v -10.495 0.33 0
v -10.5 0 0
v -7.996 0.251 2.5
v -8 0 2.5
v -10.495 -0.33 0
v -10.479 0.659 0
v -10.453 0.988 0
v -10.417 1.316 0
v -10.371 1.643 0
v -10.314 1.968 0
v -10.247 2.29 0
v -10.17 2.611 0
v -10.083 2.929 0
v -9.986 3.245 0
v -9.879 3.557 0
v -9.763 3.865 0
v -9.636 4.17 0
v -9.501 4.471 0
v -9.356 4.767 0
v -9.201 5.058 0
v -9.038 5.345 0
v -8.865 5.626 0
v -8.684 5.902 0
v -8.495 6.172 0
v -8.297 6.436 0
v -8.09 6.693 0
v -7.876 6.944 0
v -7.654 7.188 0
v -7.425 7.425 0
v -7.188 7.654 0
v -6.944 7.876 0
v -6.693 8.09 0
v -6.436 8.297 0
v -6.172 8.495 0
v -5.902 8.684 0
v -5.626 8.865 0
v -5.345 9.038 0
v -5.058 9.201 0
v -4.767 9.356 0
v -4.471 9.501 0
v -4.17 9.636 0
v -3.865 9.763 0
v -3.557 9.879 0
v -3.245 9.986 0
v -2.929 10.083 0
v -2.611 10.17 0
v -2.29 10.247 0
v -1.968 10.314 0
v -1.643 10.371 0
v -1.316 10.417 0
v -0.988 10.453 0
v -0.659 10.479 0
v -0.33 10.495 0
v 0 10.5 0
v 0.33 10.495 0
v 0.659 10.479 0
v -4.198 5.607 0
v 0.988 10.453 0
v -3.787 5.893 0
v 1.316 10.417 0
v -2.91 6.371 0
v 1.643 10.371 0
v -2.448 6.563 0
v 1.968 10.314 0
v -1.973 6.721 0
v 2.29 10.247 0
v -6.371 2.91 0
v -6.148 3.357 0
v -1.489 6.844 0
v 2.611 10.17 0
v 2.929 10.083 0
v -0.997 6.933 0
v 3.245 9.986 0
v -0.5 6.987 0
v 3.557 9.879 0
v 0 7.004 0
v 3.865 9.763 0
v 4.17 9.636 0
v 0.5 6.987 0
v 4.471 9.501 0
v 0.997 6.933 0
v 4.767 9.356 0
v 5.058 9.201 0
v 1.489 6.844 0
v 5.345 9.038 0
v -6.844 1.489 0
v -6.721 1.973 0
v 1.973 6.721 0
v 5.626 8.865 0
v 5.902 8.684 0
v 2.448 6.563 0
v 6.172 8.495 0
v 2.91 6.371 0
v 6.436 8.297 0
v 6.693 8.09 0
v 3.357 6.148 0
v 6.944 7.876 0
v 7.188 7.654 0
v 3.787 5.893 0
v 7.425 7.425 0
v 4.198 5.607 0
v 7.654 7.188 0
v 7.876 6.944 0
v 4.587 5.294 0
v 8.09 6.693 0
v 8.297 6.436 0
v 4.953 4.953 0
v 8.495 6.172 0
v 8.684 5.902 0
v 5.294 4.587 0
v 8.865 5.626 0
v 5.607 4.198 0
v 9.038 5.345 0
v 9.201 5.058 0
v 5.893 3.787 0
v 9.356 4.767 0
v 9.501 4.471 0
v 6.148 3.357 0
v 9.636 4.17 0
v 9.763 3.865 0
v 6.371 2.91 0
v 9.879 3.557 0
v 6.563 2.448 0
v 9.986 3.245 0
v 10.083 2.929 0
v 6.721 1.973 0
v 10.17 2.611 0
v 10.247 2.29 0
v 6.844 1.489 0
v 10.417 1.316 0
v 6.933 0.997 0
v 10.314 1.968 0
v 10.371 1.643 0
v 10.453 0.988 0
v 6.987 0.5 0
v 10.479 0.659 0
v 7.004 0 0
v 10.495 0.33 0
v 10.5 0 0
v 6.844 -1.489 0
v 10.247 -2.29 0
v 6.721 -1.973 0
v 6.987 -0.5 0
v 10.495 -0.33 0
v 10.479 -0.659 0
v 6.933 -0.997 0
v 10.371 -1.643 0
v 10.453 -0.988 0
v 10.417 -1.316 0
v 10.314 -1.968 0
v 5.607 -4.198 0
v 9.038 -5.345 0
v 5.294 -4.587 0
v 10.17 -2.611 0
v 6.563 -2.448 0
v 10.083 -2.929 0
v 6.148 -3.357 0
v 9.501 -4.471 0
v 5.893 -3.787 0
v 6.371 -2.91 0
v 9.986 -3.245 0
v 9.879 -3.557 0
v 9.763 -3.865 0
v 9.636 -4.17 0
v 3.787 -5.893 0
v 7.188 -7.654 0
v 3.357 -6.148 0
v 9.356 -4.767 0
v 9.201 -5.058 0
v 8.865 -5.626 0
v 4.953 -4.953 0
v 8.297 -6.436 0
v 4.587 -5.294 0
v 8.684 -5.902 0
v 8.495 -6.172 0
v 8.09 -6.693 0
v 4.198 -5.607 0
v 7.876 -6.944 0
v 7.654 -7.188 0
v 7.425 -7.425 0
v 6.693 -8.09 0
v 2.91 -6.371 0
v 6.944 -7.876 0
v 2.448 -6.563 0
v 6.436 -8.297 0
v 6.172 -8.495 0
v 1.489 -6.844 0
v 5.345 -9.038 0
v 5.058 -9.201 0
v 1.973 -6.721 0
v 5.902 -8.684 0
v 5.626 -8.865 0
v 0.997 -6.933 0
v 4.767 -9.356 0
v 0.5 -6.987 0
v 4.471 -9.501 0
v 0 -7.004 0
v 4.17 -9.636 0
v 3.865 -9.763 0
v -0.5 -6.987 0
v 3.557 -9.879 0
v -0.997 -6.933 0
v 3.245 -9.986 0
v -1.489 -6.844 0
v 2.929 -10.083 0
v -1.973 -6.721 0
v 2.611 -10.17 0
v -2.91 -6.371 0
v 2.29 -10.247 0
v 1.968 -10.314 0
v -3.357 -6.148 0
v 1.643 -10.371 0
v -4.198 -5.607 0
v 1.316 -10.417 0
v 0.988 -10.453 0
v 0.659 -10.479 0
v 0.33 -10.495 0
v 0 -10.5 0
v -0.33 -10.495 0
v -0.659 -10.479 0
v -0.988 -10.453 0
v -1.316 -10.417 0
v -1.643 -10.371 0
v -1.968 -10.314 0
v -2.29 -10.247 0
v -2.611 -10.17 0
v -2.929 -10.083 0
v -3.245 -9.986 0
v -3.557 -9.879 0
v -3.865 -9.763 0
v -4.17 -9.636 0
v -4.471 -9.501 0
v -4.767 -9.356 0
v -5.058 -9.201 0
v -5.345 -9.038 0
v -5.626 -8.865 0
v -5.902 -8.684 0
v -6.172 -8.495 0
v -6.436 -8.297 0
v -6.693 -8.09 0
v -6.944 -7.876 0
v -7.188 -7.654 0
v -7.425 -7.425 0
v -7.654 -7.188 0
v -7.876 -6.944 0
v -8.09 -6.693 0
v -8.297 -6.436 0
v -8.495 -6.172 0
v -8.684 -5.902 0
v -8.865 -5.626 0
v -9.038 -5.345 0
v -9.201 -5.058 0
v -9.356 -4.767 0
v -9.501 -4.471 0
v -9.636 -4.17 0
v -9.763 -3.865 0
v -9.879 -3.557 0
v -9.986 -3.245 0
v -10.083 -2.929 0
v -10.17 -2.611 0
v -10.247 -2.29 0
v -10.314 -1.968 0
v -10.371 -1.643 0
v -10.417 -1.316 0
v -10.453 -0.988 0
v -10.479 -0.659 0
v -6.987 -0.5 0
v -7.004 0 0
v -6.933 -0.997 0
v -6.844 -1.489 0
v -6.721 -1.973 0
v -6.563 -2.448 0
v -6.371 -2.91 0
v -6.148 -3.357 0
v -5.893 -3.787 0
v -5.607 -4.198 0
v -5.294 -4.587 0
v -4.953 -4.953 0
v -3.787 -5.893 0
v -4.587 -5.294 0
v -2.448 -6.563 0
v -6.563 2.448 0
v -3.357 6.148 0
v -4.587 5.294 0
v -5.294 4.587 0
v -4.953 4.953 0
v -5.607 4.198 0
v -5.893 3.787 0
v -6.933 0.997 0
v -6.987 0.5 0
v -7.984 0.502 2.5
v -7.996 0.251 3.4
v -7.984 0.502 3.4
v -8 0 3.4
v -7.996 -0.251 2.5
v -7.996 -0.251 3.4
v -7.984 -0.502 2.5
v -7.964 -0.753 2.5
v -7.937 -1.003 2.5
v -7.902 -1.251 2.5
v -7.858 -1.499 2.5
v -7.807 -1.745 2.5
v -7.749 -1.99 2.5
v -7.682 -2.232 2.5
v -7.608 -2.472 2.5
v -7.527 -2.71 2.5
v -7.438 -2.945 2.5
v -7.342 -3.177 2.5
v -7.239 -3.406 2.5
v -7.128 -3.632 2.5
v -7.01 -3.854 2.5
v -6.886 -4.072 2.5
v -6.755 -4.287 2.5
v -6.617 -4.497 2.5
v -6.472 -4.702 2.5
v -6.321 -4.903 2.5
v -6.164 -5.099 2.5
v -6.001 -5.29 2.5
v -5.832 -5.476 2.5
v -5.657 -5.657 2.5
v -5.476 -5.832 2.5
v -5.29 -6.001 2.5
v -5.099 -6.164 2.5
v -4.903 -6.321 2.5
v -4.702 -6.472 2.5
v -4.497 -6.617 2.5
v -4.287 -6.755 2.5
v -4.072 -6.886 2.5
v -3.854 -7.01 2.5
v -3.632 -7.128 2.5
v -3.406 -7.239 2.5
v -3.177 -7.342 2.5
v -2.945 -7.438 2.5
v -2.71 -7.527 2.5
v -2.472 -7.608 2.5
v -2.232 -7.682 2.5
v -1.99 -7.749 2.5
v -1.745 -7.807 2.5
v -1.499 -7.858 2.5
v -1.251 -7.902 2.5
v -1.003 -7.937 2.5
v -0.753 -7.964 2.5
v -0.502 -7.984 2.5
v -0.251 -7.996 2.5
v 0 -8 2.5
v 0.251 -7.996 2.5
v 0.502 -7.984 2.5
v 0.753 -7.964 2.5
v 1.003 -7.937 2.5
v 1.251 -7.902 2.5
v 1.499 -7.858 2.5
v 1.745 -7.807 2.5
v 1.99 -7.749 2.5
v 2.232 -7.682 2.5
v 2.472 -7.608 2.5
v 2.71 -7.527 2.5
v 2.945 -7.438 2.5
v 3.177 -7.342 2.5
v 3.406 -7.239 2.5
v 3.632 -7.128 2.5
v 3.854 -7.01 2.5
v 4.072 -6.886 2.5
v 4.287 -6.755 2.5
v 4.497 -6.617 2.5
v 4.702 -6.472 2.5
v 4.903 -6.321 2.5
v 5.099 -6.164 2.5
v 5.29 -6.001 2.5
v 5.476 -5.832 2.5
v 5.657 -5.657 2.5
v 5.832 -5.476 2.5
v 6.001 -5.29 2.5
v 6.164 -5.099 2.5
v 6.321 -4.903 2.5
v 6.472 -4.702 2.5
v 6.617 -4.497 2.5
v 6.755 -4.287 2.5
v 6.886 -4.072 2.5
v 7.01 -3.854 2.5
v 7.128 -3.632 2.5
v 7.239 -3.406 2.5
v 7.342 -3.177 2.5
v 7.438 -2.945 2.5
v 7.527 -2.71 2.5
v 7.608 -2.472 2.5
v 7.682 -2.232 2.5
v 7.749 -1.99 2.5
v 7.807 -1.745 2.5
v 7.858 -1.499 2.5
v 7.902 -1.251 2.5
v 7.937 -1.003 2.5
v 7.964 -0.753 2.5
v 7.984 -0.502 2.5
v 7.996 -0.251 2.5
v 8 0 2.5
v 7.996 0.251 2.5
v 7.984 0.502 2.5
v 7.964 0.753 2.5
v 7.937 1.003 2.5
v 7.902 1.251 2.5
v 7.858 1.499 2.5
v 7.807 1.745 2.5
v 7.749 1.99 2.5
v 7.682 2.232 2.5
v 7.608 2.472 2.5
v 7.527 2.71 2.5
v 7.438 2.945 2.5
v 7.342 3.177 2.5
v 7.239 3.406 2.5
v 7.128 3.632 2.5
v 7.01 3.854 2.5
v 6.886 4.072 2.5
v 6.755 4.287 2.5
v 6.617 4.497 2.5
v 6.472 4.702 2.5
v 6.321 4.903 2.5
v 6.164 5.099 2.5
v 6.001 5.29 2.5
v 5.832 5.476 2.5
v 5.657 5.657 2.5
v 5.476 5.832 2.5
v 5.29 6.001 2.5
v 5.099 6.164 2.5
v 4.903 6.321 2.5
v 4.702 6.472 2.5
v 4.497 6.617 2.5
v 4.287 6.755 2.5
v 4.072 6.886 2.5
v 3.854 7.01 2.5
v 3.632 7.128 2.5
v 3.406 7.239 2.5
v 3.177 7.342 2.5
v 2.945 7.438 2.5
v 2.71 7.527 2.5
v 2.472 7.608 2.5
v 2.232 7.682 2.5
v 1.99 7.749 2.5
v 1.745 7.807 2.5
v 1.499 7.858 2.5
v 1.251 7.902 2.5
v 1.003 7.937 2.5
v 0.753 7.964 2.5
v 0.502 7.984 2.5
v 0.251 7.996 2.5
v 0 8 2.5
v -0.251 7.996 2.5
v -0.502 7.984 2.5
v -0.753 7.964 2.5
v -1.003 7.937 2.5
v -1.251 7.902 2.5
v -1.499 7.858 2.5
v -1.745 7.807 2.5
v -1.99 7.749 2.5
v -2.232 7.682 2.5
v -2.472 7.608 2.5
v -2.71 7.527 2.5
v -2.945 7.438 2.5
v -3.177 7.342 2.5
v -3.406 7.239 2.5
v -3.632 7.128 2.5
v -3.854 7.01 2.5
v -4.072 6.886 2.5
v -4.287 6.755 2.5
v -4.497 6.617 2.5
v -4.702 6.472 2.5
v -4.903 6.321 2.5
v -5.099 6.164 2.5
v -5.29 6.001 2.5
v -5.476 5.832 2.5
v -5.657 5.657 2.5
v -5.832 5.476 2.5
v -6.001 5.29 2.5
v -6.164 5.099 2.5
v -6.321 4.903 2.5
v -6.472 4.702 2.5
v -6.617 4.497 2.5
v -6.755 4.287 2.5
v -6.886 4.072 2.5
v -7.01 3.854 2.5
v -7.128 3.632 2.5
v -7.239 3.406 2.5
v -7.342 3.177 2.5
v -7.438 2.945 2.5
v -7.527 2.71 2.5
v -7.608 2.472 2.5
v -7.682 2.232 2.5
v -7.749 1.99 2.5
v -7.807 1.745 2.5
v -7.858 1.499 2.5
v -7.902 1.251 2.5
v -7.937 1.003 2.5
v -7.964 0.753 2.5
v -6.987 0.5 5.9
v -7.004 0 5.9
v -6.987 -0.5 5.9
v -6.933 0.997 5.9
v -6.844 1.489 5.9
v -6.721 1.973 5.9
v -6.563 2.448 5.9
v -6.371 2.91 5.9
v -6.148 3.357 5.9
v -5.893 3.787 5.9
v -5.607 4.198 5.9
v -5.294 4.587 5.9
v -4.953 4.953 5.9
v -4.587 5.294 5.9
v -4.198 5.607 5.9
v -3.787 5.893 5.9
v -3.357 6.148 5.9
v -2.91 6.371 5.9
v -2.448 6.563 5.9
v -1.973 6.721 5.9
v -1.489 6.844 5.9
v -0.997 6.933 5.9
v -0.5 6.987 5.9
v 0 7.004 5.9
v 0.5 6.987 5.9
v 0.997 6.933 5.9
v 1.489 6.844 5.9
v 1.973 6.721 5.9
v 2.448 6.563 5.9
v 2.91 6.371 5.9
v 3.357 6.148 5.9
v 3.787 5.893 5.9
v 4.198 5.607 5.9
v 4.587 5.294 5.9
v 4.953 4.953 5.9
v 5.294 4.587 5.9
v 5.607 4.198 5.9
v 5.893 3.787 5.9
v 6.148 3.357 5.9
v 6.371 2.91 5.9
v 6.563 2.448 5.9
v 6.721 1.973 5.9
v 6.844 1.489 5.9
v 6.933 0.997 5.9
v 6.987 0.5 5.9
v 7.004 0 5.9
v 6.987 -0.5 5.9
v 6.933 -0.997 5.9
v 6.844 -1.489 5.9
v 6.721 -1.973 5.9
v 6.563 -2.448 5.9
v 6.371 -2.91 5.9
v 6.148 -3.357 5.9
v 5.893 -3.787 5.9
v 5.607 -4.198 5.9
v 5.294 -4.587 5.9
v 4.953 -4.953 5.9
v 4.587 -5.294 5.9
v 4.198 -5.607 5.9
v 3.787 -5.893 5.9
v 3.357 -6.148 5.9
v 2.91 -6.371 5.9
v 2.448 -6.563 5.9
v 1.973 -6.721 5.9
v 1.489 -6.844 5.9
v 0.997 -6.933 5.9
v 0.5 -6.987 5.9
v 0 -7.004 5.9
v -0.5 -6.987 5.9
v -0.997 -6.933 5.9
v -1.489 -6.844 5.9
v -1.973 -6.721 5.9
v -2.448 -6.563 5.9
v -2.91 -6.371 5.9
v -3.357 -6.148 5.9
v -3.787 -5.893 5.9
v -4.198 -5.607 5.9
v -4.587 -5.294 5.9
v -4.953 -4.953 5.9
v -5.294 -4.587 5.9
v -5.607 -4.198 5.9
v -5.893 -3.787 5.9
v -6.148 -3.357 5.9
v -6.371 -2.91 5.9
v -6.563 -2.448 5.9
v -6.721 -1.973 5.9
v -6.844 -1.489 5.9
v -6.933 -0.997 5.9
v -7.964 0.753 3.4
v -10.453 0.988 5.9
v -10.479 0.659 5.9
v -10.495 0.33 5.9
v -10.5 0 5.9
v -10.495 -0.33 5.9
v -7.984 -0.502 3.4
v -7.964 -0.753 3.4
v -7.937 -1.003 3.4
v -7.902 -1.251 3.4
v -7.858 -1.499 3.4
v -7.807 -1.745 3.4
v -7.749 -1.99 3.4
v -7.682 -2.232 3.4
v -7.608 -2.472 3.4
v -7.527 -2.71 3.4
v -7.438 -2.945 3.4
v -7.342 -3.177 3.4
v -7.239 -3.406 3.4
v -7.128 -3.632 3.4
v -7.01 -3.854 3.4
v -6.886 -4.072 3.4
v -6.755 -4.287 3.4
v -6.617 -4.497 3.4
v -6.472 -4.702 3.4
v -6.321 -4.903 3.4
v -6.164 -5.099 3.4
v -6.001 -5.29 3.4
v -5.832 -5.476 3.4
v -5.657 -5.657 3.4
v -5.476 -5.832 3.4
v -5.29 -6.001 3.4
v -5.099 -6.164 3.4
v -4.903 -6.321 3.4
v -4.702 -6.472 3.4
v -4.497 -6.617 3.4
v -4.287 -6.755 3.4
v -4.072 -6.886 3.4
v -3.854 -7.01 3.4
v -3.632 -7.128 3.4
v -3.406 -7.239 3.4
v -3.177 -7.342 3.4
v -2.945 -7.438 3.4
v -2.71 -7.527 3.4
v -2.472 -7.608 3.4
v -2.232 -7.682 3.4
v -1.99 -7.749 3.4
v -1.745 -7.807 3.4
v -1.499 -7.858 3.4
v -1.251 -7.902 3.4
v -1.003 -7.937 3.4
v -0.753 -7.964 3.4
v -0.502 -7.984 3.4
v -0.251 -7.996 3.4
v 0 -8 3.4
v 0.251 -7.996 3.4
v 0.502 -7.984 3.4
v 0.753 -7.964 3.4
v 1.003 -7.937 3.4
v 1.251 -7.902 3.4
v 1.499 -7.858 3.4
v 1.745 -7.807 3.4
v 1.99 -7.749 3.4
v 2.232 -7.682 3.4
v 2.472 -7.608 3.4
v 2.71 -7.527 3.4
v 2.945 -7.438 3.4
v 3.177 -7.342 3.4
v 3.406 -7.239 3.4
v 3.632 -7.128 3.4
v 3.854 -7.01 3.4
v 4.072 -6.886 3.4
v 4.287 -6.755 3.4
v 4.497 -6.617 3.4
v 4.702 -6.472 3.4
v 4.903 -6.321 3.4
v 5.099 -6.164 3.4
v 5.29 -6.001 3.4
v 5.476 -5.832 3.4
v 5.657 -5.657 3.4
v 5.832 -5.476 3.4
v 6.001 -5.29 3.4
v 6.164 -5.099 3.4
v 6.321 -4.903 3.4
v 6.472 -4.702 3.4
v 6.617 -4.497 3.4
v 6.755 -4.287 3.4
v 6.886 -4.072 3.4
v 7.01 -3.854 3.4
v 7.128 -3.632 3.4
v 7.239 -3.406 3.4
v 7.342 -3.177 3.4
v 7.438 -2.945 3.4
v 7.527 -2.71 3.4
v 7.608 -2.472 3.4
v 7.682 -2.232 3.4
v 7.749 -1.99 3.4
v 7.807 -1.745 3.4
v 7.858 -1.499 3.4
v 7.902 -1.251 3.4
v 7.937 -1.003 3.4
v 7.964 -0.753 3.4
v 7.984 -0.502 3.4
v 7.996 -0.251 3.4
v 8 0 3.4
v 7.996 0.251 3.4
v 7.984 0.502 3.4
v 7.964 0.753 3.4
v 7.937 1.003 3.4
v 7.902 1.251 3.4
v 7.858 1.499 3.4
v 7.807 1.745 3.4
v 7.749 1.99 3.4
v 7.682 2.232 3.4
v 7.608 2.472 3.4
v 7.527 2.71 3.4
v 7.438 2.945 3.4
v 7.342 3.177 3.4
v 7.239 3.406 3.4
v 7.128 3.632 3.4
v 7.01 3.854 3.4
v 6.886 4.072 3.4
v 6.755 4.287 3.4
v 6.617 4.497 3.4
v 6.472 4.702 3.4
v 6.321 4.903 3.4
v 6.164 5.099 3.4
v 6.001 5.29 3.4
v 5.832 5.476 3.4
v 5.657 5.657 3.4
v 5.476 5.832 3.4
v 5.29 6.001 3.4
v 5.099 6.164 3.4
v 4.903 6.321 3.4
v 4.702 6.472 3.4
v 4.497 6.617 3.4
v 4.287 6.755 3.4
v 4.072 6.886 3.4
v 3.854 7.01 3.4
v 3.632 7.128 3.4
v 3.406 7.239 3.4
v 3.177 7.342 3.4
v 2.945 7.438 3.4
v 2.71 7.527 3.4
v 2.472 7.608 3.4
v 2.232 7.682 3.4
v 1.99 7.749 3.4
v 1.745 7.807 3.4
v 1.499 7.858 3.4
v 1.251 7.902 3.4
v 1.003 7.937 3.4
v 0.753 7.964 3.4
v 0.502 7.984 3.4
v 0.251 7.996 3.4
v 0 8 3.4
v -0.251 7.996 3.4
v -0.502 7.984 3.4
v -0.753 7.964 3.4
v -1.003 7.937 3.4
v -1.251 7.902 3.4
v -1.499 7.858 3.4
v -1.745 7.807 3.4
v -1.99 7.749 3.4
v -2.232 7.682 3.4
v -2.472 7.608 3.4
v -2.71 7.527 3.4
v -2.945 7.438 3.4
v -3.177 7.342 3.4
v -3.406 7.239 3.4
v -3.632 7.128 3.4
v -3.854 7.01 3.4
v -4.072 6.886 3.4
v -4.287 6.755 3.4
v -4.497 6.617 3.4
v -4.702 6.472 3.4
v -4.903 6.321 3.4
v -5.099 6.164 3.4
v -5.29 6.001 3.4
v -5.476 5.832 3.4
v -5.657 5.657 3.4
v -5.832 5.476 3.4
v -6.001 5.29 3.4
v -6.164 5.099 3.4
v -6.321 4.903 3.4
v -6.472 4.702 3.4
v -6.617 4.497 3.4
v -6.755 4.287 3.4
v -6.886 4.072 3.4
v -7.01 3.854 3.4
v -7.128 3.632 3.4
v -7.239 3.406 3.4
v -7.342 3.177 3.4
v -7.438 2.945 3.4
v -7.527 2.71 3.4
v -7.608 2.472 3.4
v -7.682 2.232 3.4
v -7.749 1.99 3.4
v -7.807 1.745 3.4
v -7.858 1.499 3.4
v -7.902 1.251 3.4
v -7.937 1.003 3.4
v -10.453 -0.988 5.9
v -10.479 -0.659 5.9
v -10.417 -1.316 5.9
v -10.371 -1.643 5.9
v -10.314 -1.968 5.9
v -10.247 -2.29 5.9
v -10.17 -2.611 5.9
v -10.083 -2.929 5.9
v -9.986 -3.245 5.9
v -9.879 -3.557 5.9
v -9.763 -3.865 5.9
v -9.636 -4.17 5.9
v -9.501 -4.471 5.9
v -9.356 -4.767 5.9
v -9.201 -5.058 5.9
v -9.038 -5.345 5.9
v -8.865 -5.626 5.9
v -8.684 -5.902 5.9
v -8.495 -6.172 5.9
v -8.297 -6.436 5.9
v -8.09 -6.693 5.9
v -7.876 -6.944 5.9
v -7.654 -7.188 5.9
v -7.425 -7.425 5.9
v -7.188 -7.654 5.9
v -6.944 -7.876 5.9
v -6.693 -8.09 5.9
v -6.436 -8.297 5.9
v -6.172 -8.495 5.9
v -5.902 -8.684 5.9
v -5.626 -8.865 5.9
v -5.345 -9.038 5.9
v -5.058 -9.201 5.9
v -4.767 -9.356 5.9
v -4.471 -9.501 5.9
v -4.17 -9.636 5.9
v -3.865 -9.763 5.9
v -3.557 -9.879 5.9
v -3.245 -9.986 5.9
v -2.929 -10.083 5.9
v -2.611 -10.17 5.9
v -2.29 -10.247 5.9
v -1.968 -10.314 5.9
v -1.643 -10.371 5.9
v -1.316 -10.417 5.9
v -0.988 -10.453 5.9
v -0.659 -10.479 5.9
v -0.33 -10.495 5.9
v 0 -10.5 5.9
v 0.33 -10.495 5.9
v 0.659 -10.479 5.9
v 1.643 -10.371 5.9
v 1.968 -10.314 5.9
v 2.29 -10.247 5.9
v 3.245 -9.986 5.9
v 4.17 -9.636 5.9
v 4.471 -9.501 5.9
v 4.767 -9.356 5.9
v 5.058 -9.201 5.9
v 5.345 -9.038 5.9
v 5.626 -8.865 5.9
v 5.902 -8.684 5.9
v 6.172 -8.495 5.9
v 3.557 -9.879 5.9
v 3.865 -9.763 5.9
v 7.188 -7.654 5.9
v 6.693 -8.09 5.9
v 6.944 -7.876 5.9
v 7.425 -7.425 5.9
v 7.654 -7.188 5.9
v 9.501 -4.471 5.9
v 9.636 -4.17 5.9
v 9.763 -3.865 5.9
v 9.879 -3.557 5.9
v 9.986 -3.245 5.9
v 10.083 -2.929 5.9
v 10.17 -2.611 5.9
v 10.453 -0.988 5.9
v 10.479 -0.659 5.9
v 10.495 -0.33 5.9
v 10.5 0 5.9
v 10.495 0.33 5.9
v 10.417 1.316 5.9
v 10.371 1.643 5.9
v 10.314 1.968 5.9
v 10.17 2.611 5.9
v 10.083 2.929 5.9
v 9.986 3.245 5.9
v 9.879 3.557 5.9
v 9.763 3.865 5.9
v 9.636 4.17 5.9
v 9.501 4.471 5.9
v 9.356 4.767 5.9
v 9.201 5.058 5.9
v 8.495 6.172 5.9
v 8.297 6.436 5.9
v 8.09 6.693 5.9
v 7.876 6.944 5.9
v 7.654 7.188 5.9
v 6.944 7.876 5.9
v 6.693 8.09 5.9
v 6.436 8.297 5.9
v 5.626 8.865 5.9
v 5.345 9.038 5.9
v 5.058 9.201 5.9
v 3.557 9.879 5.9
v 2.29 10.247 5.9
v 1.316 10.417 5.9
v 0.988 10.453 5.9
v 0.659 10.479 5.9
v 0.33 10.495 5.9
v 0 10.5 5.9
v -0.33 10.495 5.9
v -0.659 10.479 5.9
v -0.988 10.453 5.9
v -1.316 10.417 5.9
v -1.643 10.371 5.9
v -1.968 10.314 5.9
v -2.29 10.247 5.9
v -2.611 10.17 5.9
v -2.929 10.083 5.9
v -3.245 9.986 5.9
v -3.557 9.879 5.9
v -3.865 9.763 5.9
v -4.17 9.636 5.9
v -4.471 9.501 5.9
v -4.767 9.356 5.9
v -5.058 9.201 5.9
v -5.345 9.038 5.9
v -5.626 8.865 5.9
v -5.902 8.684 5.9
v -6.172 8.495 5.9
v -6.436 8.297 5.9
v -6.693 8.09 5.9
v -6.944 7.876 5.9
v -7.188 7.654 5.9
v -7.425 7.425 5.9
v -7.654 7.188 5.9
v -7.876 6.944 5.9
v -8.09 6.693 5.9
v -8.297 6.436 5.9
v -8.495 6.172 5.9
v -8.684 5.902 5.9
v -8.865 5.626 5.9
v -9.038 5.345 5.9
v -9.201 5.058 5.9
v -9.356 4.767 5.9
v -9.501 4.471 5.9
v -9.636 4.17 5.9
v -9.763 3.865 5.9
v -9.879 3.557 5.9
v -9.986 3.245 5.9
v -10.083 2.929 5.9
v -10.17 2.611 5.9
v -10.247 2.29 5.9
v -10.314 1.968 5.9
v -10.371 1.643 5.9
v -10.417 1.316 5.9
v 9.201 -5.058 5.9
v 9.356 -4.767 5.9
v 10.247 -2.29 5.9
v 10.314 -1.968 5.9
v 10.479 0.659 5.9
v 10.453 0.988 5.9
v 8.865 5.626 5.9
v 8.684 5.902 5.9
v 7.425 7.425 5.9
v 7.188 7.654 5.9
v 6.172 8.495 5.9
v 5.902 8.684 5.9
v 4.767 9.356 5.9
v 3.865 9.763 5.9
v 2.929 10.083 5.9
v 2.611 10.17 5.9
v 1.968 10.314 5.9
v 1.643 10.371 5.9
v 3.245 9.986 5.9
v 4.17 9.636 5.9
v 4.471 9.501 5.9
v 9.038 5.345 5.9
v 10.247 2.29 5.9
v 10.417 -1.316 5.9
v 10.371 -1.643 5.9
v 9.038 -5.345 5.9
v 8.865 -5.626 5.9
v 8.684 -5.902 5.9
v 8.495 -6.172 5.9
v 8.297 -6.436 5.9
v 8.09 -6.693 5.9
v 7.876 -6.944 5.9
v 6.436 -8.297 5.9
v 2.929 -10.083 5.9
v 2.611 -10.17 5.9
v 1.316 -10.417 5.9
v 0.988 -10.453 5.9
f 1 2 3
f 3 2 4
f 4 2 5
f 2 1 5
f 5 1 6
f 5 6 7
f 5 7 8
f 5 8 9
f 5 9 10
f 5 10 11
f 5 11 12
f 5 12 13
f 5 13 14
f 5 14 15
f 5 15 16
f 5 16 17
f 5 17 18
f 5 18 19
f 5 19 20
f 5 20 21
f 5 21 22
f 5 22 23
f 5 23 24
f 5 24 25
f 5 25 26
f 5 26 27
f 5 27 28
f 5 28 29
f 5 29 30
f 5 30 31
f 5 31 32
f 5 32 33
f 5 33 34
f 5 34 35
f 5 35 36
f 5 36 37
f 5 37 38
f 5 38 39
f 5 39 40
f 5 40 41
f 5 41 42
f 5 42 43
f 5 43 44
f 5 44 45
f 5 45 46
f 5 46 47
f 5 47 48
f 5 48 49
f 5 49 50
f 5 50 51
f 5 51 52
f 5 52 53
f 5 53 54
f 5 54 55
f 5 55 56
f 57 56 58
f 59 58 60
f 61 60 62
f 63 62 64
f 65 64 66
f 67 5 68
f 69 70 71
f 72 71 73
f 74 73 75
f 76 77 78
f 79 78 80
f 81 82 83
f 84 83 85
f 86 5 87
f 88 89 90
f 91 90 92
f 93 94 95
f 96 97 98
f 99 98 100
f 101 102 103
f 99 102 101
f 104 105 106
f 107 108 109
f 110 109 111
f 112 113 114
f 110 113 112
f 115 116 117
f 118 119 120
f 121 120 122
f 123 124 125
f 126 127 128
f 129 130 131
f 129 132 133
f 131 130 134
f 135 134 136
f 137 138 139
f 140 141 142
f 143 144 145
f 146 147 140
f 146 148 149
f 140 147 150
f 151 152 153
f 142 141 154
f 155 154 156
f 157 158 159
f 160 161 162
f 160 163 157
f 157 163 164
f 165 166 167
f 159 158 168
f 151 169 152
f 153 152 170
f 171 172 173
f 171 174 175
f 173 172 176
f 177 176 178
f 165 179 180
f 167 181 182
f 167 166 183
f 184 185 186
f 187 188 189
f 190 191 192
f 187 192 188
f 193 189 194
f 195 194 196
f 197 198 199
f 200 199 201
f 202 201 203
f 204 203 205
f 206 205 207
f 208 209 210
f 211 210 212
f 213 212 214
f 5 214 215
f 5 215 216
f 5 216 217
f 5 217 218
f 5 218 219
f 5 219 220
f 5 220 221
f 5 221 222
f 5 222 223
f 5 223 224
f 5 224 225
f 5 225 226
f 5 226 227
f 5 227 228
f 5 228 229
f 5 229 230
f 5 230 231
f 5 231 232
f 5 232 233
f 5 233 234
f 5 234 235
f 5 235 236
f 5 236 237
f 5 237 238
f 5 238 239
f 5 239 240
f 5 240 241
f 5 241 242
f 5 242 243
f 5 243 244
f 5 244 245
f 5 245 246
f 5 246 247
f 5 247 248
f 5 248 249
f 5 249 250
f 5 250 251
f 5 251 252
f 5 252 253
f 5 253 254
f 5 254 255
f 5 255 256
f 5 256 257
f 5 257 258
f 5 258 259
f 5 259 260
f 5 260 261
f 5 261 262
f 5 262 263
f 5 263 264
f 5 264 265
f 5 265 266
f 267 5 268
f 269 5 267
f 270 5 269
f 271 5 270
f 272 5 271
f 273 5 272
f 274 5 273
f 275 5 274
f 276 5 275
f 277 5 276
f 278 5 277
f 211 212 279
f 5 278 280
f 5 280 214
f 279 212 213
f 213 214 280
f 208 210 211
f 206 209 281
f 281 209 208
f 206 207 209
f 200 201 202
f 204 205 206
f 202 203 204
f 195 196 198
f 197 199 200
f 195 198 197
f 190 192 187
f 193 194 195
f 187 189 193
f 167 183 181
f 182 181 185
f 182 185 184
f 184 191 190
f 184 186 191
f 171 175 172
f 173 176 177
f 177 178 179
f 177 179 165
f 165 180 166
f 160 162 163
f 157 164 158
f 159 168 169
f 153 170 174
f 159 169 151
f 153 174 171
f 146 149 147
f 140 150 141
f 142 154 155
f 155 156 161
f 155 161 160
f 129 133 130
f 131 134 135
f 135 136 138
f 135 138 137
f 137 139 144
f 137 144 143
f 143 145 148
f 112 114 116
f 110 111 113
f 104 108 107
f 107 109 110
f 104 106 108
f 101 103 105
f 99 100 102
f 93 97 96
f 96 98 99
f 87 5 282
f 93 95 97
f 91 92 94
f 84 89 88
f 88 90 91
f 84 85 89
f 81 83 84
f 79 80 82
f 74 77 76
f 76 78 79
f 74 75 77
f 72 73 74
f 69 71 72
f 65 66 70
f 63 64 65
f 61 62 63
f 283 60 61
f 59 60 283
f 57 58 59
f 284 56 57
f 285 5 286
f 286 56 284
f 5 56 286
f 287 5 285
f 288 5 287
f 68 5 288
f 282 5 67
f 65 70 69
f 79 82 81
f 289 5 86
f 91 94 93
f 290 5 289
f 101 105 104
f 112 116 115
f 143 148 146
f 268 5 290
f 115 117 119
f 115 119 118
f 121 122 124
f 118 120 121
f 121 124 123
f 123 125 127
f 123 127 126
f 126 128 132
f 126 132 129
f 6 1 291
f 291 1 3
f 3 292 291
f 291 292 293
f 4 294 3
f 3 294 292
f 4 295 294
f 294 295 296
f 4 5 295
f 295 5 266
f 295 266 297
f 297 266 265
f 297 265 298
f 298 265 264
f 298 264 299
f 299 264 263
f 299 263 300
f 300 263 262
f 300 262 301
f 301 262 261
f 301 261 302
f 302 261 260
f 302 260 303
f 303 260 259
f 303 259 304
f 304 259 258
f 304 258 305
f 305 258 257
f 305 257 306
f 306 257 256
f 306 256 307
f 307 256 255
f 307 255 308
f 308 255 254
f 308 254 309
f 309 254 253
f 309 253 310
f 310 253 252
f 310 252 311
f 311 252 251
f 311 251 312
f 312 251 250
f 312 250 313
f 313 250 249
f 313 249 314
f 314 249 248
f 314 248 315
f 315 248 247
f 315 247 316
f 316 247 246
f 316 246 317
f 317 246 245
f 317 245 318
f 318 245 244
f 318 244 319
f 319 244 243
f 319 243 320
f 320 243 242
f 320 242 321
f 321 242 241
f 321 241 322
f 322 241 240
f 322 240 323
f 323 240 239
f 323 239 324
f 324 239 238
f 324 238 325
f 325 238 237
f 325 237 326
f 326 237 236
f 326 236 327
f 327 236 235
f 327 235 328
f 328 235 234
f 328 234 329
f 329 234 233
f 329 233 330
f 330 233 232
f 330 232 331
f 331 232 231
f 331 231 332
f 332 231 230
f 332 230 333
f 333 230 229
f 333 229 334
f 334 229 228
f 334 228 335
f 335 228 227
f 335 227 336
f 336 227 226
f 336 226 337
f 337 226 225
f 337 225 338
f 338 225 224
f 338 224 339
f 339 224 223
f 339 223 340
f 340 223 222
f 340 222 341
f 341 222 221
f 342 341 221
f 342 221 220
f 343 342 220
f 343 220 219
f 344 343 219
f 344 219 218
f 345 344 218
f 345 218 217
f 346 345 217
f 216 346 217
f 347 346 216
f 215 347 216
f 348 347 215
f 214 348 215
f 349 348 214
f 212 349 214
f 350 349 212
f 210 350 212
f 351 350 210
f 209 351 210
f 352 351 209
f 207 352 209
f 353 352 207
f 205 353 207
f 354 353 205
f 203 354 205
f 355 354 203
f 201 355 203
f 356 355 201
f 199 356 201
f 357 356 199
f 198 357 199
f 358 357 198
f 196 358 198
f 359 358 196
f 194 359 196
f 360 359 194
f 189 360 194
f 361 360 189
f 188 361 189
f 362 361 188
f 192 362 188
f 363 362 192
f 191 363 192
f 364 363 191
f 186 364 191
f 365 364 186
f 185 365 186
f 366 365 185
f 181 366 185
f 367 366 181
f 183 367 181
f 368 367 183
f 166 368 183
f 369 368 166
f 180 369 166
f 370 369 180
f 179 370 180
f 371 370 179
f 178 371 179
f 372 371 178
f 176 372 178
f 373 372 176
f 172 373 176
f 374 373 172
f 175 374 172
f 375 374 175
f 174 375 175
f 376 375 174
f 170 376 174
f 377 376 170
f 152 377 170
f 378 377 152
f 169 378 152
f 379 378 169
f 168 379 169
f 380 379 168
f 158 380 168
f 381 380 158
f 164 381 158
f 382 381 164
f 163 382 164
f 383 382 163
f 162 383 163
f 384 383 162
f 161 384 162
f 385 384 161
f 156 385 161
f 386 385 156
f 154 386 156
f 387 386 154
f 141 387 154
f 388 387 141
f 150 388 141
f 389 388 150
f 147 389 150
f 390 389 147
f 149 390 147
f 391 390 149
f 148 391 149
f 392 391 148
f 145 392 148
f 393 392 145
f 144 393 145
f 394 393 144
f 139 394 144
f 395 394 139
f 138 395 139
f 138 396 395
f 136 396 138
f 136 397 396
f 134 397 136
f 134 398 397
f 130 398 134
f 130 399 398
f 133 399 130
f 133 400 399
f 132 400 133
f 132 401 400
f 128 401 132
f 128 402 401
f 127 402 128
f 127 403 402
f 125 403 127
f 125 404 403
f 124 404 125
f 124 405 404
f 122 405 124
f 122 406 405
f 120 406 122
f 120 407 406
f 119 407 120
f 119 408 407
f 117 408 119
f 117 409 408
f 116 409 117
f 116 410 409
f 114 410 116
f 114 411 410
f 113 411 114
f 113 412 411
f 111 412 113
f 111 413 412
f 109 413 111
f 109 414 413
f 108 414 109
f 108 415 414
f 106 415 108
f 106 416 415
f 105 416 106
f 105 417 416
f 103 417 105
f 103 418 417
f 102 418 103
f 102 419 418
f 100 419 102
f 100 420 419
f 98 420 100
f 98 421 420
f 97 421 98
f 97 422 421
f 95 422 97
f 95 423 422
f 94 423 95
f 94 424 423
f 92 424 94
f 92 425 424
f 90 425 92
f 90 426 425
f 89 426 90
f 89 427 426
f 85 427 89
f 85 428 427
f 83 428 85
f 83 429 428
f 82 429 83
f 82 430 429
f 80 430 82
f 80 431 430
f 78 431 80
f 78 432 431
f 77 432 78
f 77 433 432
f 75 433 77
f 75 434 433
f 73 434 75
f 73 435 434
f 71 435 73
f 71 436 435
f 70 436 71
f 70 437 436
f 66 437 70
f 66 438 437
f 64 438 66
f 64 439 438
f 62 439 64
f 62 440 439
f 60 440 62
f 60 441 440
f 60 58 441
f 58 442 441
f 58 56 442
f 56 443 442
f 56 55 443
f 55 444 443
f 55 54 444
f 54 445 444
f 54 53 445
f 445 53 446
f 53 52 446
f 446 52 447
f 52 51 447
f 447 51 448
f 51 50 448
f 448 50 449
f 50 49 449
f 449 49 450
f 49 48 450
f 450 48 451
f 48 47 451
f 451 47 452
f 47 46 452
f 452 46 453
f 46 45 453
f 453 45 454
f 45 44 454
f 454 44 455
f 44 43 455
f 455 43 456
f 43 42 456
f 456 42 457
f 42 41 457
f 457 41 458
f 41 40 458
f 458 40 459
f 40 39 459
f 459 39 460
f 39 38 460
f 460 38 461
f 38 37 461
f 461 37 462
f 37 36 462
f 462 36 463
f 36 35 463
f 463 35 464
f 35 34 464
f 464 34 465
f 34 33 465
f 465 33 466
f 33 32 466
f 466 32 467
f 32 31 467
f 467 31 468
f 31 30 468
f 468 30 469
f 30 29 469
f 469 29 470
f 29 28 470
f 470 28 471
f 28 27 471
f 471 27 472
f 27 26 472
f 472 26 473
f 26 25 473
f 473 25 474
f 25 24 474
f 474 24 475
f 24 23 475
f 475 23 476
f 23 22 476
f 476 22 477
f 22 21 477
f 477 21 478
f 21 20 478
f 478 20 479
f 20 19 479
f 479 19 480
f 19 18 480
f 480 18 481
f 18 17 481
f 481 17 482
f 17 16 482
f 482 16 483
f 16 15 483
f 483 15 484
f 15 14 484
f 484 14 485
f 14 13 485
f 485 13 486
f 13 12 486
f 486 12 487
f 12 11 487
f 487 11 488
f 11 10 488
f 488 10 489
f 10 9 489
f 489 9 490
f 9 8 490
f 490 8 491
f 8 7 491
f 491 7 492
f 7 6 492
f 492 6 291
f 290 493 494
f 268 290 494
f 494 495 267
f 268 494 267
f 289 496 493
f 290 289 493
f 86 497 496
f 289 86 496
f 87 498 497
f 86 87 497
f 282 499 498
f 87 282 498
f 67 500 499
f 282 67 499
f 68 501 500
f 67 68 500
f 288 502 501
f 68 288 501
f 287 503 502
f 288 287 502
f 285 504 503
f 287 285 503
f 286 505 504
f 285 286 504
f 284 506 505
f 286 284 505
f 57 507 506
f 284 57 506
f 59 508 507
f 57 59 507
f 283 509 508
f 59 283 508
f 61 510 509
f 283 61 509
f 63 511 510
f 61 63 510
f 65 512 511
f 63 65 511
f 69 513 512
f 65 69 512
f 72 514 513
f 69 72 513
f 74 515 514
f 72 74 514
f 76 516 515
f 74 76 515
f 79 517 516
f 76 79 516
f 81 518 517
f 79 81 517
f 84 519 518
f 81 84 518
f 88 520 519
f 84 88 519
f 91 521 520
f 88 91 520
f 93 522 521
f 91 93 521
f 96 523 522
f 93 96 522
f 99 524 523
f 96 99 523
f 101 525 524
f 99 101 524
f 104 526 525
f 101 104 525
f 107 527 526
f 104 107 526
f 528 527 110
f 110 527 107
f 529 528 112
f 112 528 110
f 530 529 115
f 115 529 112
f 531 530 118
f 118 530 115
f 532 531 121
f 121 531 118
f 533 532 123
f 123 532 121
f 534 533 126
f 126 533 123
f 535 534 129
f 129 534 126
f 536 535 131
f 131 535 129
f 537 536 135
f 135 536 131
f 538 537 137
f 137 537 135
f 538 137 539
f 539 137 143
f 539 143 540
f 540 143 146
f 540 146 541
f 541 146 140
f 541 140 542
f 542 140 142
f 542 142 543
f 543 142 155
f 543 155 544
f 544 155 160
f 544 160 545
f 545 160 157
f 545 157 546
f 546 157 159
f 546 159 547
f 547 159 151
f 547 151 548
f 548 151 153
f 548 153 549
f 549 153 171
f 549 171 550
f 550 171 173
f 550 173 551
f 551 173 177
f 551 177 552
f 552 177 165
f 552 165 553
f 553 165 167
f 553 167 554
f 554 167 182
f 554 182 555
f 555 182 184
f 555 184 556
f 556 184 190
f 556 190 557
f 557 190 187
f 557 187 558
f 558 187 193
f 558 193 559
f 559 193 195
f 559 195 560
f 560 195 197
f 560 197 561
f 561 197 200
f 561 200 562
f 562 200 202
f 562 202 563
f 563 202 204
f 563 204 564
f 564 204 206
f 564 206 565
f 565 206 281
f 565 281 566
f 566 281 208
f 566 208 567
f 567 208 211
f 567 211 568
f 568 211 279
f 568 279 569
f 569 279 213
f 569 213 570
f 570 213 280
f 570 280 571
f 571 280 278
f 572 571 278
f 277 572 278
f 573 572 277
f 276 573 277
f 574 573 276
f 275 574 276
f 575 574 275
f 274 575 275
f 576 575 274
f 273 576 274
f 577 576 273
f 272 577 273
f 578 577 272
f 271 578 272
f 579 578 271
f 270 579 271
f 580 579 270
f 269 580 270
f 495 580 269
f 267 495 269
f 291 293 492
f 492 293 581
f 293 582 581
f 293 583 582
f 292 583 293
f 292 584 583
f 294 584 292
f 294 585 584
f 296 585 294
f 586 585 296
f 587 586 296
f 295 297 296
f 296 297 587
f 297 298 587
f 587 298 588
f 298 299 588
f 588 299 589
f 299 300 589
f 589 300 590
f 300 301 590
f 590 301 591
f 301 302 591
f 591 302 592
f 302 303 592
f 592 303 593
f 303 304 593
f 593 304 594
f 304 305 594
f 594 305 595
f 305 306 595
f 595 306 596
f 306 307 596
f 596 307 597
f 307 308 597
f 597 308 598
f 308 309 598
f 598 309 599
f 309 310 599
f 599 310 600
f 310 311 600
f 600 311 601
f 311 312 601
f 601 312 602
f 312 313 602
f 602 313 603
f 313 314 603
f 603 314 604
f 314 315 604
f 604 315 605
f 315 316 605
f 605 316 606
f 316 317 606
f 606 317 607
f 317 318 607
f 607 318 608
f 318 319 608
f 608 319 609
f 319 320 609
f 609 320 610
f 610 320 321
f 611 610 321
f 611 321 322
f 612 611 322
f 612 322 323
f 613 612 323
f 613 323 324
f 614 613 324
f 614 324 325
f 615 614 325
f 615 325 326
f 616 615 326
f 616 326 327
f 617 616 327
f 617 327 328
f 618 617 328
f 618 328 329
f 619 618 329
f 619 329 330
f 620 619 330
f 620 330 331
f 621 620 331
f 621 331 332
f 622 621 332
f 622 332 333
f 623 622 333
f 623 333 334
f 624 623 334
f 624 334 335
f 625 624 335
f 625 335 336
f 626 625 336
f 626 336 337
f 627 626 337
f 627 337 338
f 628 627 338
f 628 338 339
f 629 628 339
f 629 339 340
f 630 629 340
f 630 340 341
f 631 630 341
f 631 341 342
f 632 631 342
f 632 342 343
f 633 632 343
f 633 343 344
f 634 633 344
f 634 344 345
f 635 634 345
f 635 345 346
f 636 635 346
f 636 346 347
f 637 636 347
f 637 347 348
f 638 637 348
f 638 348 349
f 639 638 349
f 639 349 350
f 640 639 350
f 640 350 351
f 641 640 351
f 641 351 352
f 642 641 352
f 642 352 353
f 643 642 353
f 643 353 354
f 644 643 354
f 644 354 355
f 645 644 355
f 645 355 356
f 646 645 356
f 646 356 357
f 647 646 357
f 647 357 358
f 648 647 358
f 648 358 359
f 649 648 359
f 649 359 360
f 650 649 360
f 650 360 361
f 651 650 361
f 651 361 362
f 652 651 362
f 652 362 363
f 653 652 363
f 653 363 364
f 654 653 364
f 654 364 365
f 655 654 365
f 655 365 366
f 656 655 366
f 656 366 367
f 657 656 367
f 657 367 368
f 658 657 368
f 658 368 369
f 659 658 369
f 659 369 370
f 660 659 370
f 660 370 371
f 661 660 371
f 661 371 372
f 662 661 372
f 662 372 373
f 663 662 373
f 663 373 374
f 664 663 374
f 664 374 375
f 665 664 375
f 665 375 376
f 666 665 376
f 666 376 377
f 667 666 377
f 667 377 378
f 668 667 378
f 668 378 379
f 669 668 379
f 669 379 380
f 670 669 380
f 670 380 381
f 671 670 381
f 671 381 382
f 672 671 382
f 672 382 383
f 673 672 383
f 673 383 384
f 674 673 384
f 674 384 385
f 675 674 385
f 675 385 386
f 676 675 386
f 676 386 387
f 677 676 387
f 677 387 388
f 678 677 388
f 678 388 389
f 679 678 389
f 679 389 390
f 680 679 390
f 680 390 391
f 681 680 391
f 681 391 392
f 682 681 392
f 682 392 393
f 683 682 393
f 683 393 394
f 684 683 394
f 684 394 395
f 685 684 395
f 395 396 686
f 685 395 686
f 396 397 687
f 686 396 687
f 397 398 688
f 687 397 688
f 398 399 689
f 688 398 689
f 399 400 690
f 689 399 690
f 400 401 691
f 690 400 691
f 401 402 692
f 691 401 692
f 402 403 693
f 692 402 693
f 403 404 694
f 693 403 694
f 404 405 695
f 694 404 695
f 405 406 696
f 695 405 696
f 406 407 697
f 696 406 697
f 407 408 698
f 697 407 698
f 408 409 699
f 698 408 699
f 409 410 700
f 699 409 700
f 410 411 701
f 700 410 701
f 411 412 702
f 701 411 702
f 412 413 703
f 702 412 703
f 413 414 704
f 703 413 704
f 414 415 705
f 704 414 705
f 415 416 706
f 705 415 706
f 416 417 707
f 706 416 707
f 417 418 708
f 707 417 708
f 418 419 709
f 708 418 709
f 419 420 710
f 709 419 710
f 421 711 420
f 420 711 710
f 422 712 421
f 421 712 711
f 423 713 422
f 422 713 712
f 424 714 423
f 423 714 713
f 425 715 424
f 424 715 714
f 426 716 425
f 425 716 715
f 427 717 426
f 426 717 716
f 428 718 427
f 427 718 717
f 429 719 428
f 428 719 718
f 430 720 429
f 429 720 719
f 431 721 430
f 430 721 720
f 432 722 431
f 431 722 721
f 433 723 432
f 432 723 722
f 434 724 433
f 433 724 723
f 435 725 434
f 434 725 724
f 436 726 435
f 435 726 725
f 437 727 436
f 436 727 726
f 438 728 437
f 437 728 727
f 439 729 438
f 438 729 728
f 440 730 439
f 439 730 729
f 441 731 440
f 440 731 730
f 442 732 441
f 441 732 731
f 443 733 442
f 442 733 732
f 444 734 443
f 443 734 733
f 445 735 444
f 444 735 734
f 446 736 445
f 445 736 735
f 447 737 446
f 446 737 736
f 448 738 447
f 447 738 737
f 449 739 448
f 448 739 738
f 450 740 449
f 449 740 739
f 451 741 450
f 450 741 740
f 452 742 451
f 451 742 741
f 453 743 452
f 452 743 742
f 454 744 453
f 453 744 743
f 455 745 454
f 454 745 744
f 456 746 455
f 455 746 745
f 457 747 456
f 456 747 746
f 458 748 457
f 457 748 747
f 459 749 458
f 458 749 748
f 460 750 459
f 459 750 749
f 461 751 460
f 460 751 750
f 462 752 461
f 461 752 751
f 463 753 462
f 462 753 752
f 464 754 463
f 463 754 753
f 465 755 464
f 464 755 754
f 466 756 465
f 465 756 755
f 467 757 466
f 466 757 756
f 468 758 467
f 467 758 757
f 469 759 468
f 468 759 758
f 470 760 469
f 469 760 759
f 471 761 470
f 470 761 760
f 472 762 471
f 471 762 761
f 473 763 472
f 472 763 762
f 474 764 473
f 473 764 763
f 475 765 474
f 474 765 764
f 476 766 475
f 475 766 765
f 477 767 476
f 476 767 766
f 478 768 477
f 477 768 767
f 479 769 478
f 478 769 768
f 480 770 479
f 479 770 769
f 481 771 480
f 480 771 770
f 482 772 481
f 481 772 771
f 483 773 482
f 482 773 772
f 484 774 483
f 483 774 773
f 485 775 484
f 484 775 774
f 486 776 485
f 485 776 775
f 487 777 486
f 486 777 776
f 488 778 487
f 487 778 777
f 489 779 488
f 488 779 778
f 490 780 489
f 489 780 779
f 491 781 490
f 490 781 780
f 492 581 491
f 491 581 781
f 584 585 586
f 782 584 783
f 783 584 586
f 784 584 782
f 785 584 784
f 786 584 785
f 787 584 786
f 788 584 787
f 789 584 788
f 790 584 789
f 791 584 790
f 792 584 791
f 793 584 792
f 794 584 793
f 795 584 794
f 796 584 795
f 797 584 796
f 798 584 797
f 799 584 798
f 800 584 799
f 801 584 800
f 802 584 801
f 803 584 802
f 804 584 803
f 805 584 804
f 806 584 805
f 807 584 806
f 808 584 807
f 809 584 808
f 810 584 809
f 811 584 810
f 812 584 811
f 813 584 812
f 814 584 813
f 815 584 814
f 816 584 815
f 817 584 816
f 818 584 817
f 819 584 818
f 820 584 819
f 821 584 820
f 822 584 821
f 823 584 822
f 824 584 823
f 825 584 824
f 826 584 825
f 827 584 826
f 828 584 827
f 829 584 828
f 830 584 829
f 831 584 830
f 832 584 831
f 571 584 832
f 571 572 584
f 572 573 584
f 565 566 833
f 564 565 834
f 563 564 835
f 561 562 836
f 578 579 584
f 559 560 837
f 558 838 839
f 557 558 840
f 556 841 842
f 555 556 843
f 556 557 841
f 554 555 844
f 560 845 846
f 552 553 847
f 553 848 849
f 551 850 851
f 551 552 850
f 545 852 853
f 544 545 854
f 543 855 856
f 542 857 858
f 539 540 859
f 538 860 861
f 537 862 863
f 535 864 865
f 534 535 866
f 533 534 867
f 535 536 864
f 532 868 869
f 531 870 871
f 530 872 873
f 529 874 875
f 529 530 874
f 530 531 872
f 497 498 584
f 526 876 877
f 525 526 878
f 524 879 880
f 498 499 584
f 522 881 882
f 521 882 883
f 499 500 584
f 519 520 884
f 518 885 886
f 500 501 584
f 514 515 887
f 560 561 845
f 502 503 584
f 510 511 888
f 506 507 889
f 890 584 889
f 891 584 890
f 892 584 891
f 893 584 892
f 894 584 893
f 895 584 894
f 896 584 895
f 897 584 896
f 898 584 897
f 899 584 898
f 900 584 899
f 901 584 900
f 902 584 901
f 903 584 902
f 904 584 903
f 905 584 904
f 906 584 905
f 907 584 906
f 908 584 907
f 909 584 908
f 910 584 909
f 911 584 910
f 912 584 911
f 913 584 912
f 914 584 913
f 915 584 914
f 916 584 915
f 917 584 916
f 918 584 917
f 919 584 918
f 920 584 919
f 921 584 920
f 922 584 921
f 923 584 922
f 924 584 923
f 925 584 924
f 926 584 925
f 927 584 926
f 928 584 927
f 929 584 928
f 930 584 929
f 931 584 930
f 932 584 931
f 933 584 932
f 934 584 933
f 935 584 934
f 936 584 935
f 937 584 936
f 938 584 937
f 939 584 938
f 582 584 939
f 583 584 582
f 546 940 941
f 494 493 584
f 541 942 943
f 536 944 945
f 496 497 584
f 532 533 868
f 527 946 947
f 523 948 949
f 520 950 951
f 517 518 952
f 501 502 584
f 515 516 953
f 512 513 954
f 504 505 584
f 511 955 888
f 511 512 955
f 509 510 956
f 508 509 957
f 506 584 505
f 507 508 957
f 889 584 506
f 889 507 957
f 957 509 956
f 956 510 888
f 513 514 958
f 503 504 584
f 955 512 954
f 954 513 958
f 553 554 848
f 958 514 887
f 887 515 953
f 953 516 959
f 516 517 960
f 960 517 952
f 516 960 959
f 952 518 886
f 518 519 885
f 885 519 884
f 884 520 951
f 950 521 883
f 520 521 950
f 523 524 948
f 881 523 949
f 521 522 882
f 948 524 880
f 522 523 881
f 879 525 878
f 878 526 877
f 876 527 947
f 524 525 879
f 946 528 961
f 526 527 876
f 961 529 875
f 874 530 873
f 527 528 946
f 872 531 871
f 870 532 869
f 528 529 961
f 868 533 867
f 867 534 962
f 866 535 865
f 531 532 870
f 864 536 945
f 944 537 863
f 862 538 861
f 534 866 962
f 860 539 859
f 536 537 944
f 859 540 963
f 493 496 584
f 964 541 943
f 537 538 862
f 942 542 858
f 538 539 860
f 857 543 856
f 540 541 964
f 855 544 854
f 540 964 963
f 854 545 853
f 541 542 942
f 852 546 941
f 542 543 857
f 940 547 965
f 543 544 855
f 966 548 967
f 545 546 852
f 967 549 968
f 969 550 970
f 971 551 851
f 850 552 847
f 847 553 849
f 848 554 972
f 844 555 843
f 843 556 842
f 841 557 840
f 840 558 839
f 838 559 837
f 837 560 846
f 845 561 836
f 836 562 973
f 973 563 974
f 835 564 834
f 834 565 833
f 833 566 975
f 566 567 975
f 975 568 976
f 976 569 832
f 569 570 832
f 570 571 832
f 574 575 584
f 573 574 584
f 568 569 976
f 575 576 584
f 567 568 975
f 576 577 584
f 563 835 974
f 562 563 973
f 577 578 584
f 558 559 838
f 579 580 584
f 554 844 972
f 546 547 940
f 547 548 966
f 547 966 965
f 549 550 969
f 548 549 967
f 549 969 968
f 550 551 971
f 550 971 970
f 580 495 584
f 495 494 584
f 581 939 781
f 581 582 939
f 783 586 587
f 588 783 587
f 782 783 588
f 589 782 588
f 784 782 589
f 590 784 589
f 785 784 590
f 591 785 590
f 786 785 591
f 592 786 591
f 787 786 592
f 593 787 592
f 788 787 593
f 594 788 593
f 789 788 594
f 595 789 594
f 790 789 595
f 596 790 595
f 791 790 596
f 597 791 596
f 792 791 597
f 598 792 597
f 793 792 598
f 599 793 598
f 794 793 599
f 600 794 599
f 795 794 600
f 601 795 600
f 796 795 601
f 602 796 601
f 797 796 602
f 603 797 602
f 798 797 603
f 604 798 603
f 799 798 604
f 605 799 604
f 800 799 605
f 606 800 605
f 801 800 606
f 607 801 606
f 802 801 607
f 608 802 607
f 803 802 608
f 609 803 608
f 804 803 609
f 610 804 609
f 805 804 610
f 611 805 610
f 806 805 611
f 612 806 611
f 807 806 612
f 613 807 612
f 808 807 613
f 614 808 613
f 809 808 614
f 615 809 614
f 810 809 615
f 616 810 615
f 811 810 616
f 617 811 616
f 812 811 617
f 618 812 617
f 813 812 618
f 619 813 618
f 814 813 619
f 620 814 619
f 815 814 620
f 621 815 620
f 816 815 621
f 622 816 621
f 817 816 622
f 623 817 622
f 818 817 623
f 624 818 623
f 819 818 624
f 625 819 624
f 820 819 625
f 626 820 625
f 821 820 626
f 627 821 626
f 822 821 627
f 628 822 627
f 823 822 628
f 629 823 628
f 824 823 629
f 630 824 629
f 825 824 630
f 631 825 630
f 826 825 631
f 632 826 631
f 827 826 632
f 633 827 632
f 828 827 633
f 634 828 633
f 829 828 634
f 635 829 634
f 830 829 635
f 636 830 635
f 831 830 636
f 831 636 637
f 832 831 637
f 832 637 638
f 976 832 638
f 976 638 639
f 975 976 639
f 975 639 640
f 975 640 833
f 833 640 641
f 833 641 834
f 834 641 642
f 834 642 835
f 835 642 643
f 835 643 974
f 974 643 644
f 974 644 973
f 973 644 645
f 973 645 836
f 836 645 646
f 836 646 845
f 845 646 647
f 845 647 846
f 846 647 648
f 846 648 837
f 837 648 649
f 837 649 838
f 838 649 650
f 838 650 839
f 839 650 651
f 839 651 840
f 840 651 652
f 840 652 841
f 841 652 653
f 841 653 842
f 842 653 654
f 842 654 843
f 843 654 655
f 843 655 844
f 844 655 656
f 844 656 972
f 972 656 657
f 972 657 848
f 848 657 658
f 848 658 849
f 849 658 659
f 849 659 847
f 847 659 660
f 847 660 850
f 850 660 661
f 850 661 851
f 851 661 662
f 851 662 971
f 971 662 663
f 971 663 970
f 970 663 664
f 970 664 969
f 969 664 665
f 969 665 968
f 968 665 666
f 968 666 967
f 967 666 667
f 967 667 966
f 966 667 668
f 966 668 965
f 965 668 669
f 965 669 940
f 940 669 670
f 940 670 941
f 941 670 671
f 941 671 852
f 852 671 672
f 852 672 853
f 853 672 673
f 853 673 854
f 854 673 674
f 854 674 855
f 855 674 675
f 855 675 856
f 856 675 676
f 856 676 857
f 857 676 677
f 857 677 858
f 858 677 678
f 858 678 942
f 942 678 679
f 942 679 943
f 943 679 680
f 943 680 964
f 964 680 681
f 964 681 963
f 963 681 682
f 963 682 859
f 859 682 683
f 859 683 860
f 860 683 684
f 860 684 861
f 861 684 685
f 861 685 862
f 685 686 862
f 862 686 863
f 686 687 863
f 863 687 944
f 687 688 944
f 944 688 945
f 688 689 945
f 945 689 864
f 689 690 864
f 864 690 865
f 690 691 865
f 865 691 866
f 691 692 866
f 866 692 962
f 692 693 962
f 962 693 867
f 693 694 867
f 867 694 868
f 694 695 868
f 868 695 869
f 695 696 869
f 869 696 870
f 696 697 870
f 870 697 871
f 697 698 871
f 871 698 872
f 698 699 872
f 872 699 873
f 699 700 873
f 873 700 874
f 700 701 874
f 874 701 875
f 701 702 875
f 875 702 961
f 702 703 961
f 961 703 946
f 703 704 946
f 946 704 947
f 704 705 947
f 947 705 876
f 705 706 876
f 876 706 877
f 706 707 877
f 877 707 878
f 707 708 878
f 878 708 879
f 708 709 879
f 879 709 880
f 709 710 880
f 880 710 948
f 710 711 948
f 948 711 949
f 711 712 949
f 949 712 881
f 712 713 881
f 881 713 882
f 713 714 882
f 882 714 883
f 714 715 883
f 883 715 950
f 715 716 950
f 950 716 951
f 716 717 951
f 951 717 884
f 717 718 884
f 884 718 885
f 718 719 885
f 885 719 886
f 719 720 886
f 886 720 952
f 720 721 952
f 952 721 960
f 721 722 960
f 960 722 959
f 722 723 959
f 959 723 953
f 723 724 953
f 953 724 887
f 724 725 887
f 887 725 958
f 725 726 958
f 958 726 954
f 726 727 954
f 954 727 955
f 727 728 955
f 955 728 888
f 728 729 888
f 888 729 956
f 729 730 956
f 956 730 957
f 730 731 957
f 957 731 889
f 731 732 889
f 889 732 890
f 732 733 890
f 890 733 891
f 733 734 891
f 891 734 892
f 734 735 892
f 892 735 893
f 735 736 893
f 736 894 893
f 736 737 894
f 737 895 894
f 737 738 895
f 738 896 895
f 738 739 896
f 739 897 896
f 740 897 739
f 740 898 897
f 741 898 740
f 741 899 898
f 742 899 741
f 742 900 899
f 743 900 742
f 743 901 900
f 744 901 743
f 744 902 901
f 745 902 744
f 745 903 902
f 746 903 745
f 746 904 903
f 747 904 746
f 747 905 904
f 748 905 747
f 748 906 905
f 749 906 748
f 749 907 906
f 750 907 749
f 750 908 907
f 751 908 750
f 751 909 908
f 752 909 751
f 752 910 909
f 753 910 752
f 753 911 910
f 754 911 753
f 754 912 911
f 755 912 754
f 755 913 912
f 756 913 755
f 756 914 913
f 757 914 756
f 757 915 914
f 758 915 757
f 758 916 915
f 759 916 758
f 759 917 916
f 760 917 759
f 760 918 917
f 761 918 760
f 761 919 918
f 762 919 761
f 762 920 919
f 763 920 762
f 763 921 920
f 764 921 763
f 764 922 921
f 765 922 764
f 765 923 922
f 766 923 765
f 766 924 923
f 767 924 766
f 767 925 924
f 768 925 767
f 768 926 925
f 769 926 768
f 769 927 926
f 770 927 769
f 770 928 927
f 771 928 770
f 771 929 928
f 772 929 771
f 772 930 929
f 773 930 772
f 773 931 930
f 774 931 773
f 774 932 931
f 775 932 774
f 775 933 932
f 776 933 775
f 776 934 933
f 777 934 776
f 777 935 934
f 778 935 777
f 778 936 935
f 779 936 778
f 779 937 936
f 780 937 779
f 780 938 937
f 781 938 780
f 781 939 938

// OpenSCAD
// file: myLibs.scad
pi= 3.14159265359;

module hole(diam, height, clearance= 0.1)
{
        fn= round(diam * pi / 0.5);
        cylinder(h= height, r=diam / 2 / cos(180 / fn) + clearance, $fn=fn);
}

module nutTrap(ffd, faces=6, height=1)
{
	cylinder(h= height, r=ffd / cos(180 / faces) / 2 + 0.05, $fn=faces);
}

// A slot which has rounded ends, but total length is l
module slot(d= 4, l= 8, ht= 1, clearance=0.1) {
	fn= round(d * pi / 0.5);
	rd= d / 2 / cos(180 / fn) + clearance;
	d1= rd*2;
	union() {
		translate([0,0,ht/2]) cube([l-d1, d1, ht], center=true);
		translate([-(l-d1)/2, 0, ht/2]) cylinder(h=ht, r=rd, $fn=fn, center=true); 
		translate([(l-d1)/2, 0, ht/2]) cylinder(h=ht, r=rd, $fn=fn, center=true); 
	}
	
}

/**
 * Standard right-angled triangle
 *
 * @param number o_len Lenght of the opposite side
 * @param number a_len Lenght of the adjacent side
 * @param number depth How wide/deep the triangle is in the 3rd dimension
 * @todo a better way ?
 */
module triangle(o_len, a_len, depth)
{
    linear_extrude(height=depth)
    {
        polygon(points=[[0,0],[a_len,0],[0,o_len]], paths=[[0,1,2]]);
    }
}
// main file
use <myLibs.scad>

// 608
/*
bearingThickness= 7;
bearingOD= 22;
bearingID= 8;
*/
// 605
bearingThickness= 5;
bearingOD= 14;
bearingID= 5;

depth= 5/2;
od= (bearingOD+depth*2+2)/2;
w= 0.9;

idler();

module idler() {
	difference() {
		rotate_extrude($fn=200) polygon( points=[[0,0],[od,0],[od-depth,depth],[od-depth,depth+w],[od,depth+w+depth],[0,depth+w+depth]] );
       #translate([0,0,-1]) hole(bearingOD, bearingThickness+2, 0.0); // make it very tight fit
	}
}
